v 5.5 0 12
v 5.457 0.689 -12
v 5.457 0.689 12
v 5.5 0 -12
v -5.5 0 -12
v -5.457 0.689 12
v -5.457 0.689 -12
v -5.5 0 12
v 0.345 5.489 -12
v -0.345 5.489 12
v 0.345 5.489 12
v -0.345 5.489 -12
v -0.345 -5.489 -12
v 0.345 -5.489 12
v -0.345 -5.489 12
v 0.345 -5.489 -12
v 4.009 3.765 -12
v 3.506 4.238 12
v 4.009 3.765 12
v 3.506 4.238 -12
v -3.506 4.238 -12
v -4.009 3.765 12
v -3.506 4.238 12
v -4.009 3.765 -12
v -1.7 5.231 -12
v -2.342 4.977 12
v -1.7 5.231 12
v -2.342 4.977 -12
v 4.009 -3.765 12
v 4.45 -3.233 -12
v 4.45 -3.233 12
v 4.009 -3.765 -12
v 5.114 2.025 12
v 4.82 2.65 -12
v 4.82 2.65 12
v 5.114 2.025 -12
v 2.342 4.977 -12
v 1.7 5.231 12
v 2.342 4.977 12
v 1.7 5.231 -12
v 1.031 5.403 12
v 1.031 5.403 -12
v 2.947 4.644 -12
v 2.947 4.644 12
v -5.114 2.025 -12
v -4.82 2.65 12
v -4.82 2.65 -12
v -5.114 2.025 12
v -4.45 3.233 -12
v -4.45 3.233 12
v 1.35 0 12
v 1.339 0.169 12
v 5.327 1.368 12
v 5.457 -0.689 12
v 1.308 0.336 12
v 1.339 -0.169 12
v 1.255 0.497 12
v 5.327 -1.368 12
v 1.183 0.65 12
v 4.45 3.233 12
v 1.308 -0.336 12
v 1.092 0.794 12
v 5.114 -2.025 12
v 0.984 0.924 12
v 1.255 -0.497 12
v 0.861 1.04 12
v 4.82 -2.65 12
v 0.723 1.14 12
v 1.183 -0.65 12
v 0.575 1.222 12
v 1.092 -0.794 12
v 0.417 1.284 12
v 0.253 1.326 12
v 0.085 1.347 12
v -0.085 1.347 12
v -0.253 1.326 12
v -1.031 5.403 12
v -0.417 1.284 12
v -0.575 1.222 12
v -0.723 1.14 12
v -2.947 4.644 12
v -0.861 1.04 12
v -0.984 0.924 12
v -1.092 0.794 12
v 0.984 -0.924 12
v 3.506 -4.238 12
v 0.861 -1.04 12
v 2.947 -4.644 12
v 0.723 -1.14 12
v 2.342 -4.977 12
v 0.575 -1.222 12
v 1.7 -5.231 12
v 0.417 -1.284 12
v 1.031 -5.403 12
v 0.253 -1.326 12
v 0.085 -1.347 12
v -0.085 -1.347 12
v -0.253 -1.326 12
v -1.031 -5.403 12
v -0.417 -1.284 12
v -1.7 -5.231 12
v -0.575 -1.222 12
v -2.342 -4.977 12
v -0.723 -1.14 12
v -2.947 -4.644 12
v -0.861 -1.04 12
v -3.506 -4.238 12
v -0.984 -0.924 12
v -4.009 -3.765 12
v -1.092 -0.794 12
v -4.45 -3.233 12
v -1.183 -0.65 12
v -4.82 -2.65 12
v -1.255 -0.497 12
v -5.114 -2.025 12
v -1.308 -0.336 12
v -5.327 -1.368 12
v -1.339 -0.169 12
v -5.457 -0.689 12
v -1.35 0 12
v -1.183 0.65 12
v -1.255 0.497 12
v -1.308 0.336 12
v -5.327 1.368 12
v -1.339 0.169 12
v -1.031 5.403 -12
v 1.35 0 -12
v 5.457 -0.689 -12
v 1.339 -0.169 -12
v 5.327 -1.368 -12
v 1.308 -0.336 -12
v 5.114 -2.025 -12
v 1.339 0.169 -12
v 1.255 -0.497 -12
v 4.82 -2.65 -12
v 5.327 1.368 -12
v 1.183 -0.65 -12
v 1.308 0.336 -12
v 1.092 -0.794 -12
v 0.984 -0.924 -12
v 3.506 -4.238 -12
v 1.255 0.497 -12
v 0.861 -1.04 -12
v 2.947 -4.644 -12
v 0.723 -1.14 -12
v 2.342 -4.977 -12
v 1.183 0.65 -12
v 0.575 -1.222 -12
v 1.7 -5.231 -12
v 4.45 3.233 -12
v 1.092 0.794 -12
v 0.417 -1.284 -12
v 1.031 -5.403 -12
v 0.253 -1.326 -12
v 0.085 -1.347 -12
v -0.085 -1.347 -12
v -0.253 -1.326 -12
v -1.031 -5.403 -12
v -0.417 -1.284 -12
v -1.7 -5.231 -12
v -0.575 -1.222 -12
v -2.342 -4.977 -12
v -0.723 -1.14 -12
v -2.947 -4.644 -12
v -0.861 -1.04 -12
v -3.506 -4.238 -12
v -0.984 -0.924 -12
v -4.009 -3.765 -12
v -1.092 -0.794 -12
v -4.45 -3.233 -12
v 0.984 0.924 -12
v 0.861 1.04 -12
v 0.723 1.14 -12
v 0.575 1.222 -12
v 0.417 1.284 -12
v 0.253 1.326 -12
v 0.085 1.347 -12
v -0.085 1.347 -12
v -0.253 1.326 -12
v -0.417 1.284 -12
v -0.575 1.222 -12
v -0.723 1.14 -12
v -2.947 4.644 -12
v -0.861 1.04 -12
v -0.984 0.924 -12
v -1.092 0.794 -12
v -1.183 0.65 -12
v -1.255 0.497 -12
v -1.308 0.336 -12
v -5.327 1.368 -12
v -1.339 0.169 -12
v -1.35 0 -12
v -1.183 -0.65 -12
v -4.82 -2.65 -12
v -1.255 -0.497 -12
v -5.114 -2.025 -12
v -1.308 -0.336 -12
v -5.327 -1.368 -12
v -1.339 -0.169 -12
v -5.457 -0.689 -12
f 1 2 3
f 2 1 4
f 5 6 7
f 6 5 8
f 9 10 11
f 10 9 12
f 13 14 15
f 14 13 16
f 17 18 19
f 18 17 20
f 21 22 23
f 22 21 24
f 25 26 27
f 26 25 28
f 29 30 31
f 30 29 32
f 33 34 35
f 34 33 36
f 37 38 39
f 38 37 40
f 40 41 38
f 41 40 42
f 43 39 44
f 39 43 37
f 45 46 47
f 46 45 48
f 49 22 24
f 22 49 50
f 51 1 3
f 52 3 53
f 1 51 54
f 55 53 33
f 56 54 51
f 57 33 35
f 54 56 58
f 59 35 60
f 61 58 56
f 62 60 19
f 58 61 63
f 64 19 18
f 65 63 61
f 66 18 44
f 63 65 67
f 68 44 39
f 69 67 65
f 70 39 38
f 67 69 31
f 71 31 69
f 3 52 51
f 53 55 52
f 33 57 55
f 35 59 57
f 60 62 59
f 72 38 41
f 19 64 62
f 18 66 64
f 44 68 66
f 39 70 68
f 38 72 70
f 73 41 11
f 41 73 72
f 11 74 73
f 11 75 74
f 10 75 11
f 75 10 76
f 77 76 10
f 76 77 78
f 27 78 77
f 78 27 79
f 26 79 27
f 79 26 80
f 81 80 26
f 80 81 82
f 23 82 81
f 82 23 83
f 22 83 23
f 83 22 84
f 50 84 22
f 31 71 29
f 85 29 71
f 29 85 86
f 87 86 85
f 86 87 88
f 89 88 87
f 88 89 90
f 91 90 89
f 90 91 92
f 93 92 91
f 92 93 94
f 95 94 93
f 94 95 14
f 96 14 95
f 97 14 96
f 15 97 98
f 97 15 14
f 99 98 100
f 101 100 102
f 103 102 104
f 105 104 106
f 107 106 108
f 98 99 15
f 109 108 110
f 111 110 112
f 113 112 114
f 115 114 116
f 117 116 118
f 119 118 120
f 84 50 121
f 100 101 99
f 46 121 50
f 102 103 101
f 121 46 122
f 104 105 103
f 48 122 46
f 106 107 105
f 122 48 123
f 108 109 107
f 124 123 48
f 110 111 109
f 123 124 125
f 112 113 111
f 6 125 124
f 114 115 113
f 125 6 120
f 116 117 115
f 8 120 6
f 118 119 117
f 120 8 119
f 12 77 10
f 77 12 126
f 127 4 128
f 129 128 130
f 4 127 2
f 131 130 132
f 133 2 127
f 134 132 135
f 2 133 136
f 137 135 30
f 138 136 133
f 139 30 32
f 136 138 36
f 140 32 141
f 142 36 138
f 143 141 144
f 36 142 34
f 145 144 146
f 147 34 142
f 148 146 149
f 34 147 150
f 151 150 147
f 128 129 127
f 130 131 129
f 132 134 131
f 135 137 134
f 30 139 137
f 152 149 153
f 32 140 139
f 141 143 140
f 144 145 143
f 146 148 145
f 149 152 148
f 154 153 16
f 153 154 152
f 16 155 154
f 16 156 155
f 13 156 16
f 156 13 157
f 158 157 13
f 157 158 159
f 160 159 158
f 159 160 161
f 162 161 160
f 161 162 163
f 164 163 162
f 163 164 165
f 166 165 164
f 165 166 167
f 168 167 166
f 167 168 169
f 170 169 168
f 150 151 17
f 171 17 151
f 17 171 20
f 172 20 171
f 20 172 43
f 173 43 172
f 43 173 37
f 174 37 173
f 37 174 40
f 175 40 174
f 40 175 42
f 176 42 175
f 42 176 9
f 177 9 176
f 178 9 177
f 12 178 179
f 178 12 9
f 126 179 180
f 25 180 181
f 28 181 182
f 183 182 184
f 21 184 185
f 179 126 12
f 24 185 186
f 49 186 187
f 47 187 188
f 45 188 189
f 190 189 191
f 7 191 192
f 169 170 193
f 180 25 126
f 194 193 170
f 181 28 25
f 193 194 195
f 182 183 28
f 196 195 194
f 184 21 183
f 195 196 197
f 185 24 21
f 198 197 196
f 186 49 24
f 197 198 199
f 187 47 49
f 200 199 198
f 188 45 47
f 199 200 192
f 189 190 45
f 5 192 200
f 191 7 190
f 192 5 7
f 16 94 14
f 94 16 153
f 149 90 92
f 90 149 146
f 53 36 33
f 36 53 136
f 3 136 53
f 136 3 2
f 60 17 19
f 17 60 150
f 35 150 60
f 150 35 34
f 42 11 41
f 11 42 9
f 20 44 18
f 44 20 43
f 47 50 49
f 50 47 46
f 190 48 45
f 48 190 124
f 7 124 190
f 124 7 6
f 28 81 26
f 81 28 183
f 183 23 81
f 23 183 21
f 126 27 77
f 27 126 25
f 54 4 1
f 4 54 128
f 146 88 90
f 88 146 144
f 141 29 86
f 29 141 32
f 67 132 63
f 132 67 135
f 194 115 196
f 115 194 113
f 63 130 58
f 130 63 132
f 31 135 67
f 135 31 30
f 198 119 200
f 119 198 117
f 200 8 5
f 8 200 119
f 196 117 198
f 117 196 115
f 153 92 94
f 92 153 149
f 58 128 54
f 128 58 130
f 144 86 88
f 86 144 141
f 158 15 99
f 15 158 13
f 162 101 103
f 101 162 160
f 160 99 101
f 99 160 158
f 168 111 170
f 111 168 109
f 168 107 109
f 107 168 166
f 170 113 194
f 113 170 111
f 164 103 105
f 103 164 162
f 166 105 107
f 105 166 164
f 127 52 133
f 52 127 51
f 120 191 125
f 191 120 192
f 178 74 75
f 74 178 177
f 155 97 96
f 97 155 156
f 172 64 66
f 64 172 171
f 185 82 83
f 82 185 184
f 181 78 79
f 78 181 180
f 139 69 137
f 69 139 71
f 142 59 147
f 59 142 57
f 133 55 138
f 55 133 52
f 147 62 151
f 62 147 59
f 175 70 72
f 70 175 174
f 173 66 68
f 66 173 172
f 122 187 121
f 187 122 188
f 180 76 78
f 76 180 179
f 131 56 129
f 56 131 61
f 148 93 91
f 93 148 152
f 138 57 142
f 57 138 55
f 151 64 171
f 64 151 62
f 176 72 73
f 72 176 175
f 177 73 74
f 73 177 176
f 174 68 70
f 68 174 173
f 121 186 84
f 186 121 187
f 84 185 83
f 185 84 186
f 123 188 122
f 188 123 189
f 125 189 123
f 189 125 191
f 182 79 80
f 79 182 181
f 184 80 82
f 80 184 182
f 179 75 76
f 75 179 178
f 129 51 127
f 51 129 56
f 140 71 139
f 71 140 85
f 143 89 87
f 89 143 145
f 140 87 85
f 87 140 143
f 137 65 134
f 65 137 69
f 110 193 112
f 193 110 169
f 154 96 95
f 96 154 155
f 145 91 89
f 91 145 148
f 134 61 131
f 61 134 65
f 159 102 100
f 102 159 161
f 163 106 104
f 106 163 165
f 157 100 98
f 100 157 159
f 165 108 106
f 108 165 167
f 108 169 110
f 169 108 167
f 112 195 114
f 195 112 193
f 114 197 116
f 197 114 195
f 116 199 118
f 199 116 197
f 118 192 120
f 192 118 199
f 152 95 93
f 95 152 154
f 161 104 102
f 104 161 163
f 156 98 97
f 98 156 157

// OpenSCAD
$fn = 50;


difference() {
	union() {
		translate(v = [0, 0, -12.0000000000]) {
			cylinder(h = 24, r = 5.5000000000);
		}
	}
	union() {
		translate(v = [0, 0, -100.0000000000]) {
			cylinder(h = 200, r = 1.3500000000);
		}
	}
}
